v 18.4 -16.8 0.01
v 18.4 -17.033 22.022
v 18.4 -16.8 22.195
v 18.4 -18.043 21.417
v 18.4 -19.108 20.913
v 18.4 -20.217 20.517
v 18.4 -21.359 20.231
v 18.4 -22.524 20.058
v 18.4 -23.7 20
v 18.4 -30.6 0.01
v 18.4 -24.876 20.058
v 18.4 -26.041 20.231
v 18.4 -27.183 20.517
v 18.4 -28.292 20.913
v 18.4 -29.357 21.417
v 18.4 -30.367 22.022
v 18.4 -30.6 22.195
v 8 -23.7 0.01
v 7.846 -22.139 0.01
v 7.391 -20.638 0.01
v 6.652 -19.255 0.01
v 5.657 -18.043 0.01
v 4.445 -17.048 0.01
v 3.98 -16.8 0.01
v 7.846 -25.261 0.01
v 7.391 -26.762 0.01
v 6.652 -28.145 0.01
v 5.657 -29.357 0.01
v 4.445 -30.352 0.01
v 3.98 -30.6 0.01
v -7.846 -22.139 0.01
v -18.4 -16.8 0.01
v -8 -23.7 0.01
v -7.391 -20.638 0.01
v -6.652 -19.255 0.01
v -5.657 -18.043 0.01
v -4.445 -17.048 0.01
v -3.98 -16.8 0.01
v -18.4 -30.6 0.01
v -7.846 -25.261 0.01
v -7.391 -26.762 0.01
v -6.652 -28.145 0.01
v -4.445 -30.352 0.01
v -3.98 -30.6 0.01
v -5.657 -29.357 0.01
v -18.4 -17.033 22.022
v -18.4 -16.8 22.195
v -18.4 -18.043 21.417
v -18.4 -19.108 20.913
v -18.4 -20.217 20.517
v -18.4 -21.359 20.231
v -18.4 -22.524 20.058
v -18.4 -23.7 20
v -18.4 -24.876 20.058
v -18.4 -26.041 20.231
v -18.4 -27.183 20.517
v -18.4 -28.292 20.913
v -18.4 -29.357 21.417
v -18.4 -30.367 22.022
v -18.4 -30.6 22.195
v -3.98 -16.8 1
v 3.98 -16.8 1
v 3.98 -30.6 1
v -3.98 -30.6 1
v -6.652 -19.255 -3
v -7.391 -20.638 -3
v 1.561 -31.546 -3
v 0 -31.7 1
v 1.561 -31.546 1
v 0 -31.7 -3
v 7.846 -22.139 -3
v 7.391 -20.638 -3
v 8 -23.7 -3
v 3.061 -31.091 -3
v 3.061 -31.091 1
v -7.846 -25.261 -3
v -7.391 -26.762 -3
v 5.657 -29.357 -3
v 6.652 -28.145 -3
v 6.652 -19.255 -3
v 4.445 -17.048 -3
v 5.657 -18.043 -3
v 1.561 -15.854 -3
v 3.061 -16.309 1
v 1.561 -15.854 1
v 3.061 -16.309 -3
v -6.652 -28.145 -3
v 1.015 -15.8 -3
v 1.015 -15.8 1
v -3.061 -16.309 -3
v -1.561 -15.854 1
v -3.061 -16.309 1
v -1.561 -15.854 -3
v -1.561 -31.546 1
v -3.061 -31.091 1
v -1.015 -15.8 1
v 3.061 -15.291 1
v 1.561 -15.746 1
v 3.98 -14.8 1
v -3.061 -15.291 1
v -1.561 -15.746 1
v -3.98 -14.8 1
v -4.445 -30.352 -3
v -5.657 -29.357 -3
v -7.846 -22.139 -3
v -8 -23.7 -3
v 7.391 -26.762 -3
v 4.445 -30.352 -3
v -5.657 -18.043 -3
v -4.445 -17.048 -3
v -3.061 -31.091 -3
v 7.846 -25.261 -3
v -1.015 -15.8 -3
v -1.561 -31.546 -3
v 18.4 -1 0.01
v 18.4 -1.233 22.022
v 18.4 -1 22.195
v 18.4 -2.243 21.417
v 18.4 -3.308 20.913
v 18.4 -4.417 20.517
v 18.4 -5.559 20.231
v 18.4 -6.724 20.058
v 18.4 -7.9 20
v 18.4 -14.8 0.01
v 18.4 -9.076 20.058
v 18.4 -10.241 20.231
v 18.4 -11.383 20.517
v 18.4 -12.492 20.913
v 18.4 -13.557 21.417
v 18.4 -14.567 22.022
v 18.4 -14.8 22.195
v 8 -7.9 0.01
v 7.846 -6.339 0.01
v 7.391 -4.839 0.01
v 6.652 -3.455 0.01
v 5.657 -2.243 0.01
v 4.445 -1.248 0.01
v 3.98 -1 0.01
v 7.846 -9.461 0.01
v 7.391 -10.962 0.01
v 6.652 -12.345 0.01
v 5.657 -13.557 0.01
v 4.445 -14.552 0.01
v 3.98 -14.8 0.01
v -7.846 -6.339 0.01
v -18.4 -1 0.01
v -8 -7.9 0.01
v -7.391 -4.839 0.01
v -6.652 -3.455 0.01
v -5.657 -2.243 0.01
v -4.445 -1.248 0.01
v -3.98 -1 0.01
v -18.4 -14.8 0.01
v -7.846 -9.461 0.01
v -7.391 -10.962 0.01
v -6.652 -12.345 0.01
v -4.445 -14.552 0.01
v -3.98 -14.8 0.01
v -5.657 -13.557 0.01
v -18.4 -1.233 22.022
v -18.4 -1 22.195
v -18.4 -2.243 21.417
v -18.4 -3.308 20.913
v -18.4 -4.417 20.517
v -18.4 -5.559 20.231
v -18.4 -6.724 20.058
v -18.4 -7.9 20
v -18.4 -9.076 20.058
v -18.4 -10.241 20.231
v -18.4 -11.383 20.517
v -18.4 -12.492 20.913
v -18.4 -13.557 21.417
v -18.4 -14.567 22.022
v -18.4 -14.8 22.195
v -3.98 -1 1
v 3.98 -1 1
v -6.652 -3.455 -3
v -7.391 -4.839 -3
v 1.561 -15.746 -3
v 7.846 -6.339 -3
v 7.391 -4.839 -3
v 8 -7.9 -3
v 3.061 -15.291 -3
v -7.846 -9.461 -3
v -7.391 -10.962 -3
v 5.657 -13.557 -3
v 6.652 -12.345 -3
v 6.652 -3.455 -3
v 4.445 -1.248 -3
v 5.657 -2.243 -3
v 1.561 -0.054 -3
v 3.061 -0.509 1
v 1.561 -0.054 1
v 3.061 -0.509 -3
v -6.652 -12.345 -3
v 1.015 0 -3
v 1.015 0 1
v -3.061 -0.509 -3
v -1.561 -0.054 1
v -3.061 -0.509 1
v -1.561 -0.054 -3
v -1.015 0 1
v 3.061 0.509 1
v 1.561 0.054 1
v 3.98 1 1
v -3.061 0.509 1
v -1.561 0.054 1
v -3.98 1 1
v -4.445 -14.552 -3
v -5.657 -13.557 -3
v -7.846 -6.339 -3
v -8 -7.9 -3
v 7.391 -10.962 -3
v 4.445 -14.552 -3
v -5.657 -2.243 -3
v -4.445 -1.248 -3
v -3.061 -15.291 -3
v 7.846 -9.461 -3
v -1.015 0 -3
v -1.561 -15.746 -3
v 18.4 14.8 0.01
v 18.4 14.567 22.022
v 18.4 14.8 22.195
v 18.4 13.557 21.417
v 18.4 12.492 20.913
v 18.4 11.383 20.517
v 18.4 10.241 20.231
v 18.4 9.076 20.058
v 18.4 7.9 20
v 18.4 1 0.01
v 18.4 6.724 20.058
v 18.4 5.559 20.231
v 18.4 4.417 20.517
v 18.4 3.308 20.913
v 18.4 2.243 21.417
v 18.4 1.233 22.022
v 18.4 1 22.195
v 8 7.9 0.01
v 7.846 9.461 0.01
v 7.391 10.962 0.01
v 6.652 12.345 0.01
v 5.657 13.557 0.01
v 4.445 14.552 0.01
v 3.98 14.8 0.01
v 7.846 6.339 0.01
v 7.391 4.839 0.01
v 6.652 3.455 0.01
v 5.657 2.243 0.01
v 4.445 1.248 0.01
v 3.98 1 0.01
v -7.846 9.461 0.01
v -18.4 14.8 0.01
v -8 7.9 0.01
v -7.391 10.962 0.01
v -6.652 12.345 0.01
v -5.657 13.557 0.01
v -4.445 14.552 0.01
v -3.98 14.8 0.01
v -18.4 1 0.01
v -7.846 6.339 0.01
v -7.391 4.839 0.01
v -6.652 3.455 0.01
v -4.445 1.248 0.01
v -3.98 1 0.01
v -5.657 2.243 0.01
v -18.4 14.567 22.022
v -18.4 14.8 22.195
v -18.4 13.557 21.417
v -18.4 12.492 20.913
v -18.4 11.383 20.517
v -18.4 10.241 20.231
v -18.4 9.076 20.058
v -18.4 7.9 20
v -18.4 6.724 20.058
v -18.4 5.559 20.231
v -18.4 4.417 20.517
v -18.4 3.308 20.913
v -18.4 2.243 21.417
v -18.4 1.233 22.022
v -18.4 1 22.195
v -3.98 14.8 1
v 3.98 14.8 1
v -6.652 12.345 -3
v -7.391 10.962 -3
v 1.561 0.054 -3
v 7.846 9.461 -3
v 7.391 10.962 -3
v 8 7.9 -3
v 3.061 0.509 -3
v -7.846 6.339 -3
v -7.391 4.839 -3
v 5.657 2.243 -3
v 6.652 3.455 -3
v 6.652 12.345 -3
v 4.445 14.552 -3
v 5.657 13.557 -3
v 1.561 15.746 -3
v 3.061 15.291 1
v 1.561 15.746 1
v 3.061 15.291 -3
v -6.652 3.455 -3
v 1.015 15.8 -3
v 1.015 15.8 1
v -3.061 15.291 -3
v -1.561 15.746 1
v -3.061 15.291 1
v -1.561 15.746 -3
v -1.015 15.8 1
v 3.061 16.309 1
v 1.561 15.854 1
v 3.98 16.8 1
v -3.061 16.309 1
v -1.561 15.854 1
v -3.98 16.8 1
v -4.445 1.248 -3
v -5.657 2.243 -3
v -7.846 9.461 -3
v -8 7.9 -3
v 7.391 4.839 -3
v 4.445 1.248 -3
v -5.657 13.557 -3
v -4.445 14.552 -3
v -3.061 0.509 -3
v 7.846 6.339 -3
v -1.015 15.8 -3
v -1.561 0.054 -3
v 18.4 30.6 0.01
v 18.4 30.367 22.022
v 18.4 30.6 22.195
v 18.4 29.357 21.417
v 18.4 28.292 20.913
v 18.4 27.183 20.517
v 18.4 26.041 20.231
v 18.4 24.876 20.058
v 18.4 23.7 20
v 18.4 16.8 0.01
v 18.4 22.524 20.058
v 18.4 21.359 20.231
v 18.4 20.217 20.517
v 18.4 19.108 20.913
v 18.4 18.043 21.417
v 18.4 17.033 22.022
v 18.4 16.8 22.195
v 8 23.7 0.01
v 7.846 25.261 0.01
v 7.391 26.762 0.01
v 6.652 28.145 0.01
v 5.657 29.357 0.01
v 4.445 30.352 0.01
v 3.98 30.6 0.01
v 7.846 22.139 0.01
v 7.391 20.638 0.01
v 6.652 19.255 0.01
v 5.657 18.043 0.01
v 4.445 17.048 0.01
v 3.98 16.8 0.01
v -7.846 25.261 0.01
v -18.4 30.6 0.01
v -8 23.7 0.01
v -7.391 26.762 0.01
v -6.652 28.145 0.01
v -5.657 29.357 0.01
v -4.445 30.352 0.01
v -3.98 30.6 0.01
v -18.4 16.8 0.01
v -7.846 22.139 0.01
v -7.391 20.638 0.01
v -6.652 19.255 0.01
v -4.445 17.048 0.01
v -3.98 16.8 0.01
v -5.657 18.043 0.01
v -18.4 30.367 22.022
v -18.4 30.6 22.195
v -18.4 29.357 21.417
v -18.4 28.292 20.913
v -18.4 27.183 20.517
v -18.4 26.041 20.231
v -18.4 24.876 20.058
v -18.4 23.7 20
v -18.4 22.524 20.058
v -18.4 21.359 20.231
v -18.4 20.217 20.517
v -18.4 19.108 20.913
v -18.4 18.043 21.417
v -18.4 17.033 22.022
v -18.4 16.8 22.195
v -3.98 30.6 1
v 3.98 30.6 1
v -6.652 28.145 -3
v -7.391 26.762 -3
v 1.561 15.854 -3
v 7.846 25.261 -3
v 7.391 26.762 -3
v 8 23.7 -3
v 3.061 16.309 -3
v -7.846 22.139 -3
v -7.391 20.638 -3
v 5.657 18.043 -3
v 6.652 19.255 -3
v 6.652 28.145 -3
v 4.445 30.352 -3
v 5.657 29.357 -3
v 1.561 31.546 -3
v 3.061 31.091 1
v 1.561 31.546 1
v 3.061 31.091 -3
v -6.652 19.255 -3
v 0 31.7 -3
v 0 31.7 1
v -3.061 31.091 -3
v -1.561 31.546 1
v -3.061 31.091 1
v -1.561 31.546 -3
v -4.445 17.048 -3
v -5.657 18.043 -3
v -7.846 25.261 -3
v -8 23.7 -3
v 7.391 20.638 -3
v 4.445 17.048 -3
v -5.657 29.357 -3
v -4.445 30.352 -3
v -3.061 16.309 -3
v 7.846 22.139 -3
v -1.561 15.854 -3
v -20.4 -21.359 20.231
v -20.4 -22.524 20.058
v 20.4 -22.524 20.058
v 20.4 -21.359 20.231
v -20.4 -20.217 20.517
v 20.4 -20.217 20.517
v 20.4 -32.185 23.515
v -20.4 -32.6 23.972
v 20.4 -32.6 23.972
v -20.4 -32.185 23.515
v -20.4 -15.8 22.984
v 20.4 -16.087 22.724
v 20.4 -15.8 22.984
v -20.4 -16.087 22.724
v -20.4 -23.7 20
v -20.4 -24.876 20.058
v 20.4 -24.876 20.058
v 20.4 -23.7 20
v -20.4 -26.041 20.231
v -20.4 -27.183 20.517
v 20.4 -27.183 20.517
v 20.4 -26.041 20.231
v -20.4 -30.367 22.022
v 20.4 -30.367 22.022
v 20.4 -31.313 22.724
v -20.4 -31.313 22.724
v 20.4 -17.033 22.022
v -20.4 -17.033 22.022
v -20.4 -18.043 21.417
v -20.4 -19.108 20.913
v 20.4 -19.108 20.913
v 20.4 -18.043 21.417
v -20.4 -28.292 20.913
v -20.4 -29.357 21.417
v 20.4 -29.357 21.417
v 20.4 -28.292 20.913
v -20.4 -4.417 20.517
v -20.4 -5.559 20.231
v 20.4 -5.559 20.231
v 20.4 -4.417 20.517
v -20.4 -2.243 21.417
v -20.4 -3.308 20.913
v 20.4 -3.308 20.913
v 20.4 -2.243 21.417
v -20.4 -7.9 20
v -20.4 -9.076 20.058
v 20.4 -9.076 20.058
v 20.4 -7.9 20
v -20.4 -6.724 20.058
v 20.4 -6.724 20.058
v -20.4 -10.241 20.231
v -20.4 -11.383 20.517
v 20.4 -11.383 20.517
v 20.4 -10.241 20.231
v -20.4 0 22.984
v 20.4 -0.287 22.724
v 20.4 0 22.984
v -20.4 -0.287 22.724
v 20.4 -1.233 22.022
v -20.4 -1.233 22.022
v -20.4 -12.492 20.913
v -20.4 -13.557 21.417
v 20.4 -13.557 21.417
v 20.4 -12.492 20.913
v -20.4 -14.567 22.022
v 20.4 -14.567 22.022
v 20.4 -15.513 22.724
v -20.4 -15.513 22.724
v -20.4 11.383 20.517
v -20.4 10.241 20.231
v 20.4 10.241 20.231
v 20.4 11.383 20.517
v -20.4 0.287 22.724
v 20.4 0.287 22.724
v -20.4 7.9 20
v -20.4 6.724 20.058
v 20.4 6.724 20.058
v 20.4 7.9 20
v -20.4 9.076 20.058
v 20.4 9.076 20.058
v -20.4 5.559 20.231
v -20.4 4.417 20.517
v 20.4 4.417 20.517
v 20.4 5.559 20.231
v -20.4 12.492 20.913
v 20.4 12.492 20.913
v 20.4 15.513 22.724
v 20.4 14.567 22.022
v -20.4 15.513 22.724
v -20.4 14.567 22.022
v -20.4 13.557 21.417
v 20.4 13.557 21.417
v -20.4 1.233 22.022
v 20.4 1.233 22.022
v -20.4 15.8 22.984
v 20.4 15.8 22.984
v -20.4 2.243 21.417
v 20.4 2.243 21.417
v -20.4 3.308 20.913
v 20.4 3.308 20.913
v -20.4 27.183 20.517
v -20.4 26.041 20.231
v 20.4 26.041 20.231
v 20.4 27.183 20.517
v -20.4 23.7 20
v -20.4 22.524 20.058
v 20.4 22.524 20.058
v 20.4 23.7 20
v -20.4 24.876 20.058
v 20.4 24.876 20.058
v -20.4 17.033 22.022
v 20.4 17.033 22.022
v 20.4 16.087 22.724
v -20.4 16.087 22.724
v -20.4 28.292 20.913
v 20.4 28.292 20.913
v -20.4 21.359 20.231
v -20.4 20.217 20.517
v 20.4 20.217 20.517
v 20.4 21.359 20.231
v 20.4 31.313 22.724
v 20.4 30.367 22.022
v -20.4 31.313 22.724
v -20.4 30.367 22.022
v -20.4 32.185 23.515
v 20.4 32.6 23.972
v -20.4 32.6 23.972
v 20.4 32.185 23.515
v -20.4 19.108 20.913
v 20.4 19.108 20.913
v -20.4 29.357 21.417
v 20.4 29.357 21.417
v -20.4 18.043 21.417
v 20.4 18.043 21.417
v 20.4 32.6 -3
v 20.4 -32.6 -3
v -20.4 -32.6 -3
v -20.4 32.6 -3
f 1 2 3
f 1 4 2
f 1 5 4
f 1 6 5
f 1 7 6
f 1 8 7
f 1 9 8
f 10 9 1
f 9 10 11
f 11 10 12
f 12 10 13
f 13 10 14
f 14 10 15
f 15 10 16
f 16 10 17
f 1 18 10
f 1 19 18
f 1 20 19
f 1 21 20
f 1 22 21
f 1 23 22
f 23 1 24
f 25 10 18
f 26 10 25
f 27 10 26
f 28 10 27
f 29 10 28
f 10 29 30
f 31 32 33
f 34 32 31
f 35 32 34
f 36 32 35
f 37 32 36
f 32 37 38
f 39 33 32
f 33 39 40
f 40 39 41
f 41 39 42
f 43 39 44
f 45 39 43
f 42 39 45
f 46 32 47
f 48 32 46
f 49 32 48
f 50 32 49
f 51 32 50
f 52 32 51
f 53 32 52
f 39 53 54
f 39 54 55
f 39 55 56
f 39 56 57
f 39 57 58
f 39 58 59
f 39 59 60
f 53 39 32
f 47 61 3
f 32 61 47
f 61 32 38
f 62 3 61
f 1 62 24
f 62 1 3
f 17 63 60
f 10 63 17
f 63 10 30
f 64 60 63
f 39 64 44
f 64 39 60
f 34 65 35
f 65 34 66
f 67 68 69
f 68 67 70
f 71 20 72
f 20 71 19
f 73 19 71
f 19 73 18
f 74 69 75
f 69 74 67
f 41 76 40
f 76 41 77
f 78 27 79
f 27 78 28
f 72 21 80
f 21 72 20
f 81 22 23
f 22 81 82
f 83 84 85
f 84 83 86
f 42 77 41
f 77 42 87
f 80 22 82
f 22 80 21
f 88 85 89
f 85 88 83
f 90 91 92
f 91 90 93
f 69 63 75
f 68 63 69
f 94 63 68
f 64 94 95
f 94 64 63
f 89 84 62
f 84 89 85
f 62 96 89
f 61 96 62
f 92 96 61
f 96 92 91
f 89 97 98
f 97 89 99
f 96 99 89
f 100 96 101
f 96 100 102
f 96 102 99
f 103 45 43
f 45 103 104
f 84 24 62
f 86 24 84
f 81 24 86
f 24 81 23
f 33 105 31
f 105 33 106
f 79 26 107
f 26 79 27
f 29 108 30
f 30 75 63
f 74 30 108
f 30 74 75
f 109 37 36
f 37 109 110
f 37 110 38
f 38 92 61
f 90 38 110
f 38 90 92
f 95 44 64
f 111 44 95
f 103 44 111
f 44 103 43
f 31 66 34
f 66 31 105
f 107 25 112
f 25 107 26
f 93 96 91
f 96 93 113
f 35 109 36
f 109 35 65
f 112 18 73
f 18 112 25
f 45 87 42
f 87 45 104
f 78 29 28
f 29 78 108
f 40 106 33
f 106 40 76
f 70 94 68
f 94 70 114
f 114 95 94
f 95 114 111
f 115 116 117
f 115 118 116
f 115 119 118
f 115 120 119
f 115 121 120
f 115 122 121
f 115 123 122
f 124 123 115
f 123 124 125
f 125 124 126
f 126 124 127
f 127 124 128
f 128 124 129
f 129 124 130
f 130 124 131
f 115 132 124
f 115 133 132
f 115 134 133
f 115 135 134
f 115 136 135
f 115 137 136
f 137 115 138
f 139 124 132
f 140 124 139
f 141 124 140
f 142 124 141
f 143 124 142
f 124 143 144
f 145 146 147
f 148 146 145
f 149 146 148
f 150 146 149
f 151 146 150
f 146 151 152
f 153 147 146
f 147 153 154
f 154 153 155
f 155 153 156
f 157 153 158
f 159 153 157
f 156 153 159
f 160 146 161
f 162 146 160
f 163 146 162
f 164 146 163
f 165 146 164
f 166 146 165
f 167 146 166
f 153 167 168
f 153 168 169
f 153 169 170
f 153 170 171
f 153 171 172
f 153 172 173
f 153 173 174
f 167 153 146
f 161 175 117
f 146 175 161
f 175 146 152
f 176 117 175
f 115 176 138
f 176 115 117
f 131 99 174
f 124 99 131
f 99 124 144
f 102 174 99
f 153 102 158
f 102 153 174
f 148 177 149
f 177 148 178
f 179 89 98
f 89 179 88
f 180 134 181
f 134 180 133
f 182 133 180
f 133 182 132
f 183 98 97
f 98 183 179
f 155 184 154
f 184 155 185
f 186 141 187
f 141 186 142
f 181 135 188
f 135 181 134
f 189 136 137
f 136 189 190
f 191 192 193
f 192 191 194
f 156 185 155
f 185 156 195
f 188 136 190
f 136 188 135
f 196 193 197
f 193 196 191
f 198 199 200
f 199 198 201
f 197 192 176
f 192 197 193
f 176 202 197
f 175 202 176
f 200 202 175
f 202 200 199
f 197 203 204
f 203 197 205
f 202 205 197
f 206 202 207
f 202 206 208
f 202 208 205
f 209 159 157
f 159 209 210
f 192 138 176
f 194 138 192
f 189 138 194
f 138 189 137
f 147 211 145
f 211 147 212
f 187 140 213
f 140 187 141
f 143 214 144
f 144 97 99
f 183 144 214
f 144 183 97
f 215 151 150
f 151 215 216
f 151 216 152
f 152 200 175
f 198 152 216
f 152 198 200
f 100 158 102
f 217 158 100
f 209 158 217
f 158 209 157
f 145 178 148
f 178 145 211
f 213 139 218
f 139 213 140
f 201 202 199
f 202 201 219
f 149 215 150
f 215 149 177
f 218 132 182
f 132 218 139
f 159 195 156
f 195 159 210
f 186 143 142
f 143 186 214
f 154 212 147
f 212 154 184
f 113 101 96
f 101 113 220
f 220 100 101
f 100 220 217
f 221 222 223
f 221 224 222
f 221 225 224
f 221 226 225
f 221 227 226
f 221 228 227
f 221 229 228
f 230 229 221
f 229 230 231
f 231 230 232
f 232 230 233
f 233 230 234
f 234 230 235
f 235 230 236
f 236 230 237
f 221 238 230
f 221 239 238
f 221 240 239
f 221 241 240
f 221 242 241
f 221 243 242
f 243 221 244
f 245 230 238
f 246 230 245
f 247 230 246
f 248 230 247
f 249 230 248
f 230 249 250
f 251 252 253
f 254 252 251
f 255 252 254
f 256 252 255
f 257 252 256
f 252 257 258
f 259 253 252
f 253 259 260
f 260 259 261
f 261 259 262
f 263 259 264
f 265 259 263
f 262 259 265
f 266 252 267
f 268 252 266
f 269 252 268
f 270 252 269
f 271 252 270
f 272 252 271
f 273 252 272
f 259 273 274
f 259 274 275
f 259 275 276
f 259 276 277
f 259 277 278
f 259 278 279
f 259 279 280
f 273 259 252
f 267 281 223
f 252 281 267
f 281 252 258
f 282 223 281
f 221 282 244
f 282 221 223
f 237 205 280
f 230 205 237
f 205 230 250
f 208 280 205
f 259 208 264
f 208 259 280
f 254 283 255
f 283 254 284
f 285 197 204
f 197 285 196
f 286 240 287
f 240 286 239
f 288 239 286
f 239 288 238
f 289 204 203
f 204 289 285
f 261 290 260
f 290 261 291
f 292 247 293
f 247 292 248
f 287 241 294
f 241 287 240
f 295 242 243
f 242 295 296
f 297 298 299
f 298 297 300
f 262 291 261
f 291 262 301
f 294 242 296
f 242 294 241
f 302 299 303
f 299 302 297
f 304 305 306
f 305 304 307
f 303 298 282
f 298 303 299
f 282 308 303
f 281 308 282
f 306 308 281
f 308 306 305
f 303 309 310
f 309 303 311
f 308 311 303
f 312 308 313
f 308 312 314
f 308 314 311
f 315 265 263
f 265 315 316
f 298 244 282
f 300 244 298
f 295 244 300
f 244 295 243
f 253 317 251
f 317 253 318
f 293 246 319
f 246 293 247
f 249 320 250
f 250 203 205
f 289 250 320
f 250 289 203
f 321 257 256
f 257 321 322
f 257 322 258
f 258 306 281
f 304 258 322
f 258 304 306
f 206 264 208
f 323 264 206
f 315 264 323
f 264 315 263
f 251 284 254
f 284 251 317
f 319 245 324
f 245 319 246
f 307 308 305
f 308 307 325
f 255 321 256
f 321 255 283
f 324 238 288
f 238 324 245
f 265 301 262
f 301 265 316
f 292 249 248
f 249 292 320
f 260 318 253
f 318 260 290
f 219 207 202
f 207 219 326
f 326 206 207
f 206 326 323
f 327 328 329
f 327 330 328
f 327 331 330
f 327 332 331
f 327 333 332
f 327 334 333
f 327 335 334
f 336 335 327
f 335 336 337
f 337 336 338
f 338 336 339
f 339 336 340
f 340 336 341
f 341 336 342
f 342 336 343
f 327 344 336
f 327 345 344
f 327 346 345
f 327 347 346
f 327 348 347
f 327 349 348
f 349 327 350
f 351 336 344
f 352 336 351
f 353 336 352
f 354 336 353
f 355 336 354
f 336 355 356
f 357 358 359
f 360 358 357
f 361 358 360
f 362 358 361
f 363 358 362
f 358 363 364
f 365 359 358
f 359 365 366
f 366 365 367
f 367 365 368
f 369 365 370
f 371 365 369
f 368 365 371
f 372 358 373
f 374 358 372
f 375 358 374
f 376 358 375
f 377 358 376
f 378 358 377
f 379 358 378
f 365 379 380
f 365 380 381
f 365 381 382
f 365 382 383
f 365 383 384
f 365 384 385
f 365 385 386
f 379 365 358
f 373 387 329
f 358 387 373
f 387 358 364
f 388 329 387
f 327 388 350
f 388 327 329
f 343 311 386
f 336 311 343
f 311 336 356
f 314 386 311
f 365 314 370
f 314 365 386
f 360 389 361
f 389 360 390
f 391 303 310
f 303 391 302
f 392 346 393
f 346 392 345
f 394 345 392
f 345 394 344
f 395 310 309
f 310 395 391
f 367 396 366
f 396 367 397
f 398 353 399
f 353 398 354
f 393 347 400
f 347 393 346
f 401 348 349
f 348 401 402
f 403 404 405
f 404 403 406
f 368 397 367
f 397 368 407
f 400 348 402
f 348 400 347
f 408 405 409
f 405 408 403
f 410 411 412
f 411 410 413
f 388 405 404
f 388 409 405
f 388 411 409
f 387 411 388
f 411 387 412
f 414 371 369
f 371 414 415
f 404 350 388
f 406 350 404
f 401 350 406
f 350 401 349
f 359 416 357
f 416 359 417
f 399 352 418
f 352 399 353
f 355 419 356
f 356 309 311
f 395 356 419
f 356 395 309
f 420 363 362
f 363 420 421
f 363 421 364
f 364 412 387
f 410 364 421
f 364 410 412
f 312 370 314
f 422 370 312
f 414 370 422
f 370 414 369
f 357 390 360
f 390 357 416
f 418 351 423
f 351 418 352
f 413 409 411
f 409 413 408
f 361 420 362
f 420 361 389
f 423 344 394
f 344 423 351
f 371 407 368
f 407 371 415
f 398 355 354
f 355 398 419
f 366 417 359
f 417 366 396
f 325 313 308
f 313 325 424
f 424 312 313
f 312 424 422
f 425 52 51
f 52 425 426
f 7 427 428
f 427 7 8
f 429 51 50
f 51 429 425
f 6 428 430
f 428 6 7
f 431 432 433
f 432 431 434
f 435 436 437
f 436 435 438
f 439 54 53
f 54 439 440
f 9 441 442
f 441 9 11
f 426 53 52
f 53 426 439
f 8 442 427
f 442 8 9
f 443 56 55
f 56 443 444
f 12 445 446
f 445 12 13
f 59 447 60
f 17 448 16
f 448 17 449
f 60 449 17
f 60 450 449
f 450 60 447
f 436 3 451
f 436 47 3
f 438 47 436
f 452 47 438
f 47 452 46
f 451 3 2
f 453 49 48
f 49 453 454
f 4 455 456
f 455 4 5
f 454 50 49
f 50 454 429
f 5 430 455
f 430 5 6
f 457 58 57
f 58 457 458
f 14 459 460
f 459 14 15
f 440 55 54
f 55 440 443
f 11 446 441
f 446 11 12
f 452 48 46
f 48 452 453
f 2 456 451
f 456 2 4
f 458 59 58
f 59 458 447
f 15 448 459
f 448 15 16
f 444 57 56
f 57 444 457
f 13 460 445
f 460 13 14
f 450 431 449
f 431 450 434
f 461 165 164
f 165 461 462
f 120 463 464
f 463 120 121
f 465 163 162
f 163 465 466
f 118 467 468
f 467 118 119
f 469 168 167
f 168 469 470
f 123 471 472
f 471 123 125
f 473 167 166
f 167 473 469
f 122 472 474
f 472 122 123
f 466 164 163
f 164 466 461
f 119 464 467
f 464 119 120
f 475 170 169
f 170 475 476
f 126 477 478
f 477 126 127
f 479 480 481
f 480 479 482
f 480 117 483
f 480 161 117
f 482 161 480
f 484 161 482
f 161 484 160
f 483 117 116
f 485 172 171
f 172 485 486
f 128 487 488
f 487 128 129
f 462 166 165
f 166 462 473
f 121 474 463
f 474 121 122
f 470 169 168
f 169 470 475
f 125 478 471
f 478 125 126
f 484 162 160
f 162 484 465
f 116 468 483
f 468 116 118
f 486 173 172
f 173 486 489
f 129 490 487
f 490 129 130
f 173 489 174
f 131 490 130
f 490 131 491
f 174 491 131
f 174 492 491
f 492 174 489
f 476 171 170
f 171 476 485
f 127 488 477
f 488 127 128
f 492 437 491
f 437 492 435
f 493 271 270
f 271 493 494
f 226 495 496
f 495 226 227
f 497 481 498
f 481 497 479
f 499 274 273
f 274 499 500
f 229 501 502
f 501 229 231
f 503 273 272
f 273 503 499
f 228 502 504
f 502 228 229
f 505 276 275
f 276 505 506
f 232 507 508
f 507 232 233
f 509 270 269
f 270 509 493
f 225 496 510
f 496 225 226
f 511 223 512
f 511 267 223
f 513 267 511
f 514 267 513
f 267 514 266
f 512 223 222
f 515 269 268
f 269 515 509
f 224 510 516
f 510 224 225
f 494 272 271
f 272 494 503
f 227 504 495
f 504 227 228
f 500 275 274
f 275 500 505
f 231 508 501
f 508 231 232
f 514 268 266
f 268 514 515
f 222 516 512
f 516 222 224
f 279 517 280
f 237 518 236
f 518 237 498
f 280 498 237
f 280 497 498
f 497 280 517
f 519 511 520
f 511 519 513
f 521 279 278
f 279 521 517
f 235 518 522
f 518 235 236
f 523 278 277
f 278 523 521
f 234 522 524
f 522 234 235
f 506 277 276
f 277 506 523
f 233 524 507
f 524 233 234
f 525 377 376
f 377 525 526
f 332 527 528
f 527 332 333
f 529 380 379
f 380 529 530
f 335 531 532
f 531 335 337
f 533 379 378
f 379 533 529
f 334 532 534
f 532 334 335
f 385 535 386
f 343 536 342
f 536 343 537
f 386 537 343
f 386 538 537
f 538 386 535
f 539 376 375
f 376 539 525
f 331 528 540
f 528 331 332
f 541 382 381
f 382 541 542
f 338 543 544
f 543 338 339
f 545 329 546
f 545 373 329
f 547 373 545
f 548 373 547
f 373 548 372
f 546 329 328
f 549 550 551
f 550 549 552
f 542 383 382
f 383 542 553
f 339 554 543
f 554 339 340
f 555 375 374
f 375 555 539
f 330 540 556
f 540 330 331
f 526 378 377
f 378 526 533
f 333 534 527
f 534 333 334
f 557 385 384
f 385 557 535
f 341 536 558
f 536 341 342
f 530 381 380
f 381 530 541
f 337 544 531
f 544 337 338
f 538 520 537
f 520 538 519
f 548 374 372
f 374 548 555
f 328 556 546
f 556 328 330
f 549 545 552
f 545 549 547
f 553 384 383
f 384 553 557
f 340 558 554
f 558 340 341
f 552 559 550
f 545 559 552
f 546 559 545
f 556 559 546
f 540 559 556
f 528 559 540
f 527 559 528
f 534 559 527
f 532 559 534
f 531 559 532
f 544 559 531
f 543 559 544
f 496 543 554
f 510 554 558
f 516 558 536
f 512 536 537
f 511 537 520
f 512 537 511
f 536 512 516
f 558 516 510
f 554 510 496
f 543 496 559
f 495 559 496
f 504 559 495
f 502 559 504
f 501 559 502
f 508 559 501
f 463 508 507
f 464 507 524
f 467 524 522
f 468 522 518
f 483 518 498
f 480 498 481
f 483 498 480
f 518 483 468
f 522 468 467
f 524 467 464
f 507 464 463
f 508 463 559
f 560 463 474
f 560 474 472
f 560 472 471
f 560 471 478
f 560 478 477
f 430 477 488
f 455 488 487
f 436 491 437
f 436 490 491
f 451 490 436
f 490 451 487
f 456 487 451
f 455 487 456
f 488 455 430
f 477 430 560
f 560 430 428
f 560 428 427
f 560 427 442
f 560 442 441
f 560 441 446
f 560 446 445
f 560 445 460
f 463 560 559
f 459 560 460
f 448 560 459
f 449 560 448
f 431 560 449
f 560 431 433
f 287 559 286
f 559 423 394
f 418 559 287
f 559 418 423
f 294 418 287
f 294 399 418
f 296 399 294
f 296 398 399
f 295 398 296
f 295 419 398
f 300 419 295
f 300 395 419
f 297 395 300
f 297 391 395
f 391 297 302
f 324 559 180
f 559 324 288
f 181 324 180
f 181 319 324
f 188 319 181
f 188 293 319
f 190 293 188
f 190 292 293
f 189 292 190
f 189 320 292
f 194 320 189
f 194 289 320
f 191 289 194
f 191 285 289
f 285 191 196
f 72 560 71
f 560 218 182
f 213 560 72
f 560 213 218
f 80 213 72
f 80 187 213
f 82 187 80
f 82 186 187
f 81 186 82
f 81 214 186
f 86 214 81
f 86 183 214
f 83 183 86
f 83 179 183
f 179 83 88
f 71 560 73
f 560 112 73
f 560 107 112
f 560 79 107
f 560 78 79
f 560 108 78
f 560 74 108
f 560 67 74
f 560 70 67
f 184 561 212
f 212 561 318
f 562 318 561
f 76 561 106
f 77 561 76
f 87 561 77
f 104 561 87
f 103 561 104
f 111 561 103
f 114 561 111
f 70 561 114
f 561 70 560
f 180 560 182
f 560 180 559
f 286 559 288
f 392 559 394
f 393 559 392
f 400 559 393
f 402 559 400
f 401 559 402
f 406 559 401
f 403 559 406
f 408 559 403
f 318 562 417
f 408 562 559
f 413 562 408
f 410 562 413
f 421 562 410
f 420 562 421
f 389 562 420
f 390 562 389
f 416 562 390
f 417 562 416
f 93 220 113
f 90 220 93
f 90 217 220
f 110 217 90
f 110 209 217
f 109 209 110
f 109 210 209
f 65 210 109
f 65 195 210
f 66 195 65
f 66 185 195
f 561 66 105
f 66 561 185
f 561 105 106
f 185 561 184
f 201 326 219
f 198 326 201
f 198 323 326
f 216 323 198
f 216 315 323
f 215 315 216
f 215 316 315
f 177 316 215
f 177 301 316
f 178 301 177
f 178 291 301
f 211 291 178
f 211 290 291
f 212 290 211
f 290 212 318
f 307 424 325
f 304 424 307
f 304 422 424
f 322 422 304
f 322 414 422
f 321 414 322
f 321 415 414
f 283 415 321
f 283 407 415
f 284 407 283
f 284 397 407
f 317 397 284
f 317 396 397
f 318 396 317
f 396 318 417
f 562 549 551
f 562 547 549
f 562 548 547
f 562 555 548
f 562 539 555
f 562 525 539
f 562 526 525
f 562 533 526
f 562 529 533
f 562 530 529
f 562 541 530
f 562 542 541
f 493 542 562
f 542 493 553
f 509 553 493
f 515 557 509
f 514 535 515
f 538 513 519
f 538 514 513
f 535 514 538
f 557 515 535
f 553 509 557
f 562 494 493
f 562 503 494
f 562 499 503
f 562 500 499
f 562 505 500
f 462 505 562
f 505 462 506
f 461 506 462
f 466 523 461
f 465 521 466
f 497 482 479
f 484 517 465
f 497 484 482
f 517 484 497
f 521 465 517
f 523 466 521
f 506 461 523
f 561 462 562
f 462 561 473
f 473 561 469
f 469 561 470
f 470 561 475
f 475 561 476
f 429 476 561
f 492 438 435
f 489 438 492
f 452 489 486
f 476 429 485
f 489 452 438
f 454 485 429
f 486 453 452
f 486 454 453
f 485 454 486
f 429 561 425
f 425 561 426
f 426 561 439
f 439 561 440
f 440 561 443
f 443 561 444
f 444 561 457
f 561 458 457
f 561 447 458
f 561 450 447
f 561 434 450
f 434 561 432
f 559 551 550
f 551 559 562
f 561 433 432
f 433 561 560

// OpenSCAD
// Battery dimensions: 56 x 36 x 13
// Arrangement: 4x1 linear, standing on 36x13 face, largest faces (56x36) facing each other.

battery_w = 36.8; // Width (slightly oversized for fit)
battery_d = 13.8; // Depth (slightly oversized for fit)
battery_h = 56.0; // Total battery height

wall = 2.0;       // Wall thickness
base_h = 3.0;     // Base thickness
holder_h = 30;    // Height of the case walls

finger_hole_r = 8;
snap_r = 1.0;     // Small bump for snap fit

num_batteries = 4;

module battery_slot() {
    // Main cavity
    translate([-battery_w/2, -battery_d/2, 0.01])
        cube([battery_w, battery_d, holder_h + 1]);
    
    // Finger hole through the bottom
    translate([0, 0, -base_h - 1])
        cylinder(h = base_h + 2, r = finger_hole_r, $fn=32);
        
    // Snap bumps (on the large faces: battery_w x battery_h faces)
    // We place them near the top edge of the holder to grip the side of the battery
    bump_offset_y = battery_d/2;
    bump_z = holder_h - 5;
    
    translate([0, bump_offset_y, bump_z])
        scale([1, 0.6, 1]) sphere(r = snap_r, $fn=16);
    translate([0, -bump_offset_y, bump_z])
        scale([1, 0.6, 1]) sphere(r = snap_r, $fn=16);
}

module battery_case() {
    total_w = battery_w + 2 * wall;
    // Arrangement: wall - batt1 - wall - batt2 - wall - batt3 - wall - batt4 - wall
    total_d = (battery_d * num_batteries) + (wall * (num_batteries + 1));
    total_h = holder_h;

    difference() {
        // Main block
        translate([-total_w/2, -total_d/2, -base_h])
            cube([total_w, total_d, total_h + base_h]);
        
        // Subtract slots
        for (i = [0 : num_batteries - 1]) {
            y_pos = -total_d/2 + wall + battery_d/2 + i * (battery_d + wall);
            translate([0, y_pos, 0])
                battery_slot();
        }
        
        // Side cutouts for weight reduction and better grip on the battery
        for (i = [0 : num_batteries - 1]) {
             y_pos = -total_d/2 + wall + battery_d/2 + i * (battery_d + wall);
             // Cutout on left and right walls
             translate([-total_w/2 - 1, y_pos, holder_h + 2])
                rotate([0, 90, 0])
                cylinder(h = total_w + 2, r = 12, $fn=64);
        }
    }
}

// Ensure the battery case is centered for better viewing
battery_case();
